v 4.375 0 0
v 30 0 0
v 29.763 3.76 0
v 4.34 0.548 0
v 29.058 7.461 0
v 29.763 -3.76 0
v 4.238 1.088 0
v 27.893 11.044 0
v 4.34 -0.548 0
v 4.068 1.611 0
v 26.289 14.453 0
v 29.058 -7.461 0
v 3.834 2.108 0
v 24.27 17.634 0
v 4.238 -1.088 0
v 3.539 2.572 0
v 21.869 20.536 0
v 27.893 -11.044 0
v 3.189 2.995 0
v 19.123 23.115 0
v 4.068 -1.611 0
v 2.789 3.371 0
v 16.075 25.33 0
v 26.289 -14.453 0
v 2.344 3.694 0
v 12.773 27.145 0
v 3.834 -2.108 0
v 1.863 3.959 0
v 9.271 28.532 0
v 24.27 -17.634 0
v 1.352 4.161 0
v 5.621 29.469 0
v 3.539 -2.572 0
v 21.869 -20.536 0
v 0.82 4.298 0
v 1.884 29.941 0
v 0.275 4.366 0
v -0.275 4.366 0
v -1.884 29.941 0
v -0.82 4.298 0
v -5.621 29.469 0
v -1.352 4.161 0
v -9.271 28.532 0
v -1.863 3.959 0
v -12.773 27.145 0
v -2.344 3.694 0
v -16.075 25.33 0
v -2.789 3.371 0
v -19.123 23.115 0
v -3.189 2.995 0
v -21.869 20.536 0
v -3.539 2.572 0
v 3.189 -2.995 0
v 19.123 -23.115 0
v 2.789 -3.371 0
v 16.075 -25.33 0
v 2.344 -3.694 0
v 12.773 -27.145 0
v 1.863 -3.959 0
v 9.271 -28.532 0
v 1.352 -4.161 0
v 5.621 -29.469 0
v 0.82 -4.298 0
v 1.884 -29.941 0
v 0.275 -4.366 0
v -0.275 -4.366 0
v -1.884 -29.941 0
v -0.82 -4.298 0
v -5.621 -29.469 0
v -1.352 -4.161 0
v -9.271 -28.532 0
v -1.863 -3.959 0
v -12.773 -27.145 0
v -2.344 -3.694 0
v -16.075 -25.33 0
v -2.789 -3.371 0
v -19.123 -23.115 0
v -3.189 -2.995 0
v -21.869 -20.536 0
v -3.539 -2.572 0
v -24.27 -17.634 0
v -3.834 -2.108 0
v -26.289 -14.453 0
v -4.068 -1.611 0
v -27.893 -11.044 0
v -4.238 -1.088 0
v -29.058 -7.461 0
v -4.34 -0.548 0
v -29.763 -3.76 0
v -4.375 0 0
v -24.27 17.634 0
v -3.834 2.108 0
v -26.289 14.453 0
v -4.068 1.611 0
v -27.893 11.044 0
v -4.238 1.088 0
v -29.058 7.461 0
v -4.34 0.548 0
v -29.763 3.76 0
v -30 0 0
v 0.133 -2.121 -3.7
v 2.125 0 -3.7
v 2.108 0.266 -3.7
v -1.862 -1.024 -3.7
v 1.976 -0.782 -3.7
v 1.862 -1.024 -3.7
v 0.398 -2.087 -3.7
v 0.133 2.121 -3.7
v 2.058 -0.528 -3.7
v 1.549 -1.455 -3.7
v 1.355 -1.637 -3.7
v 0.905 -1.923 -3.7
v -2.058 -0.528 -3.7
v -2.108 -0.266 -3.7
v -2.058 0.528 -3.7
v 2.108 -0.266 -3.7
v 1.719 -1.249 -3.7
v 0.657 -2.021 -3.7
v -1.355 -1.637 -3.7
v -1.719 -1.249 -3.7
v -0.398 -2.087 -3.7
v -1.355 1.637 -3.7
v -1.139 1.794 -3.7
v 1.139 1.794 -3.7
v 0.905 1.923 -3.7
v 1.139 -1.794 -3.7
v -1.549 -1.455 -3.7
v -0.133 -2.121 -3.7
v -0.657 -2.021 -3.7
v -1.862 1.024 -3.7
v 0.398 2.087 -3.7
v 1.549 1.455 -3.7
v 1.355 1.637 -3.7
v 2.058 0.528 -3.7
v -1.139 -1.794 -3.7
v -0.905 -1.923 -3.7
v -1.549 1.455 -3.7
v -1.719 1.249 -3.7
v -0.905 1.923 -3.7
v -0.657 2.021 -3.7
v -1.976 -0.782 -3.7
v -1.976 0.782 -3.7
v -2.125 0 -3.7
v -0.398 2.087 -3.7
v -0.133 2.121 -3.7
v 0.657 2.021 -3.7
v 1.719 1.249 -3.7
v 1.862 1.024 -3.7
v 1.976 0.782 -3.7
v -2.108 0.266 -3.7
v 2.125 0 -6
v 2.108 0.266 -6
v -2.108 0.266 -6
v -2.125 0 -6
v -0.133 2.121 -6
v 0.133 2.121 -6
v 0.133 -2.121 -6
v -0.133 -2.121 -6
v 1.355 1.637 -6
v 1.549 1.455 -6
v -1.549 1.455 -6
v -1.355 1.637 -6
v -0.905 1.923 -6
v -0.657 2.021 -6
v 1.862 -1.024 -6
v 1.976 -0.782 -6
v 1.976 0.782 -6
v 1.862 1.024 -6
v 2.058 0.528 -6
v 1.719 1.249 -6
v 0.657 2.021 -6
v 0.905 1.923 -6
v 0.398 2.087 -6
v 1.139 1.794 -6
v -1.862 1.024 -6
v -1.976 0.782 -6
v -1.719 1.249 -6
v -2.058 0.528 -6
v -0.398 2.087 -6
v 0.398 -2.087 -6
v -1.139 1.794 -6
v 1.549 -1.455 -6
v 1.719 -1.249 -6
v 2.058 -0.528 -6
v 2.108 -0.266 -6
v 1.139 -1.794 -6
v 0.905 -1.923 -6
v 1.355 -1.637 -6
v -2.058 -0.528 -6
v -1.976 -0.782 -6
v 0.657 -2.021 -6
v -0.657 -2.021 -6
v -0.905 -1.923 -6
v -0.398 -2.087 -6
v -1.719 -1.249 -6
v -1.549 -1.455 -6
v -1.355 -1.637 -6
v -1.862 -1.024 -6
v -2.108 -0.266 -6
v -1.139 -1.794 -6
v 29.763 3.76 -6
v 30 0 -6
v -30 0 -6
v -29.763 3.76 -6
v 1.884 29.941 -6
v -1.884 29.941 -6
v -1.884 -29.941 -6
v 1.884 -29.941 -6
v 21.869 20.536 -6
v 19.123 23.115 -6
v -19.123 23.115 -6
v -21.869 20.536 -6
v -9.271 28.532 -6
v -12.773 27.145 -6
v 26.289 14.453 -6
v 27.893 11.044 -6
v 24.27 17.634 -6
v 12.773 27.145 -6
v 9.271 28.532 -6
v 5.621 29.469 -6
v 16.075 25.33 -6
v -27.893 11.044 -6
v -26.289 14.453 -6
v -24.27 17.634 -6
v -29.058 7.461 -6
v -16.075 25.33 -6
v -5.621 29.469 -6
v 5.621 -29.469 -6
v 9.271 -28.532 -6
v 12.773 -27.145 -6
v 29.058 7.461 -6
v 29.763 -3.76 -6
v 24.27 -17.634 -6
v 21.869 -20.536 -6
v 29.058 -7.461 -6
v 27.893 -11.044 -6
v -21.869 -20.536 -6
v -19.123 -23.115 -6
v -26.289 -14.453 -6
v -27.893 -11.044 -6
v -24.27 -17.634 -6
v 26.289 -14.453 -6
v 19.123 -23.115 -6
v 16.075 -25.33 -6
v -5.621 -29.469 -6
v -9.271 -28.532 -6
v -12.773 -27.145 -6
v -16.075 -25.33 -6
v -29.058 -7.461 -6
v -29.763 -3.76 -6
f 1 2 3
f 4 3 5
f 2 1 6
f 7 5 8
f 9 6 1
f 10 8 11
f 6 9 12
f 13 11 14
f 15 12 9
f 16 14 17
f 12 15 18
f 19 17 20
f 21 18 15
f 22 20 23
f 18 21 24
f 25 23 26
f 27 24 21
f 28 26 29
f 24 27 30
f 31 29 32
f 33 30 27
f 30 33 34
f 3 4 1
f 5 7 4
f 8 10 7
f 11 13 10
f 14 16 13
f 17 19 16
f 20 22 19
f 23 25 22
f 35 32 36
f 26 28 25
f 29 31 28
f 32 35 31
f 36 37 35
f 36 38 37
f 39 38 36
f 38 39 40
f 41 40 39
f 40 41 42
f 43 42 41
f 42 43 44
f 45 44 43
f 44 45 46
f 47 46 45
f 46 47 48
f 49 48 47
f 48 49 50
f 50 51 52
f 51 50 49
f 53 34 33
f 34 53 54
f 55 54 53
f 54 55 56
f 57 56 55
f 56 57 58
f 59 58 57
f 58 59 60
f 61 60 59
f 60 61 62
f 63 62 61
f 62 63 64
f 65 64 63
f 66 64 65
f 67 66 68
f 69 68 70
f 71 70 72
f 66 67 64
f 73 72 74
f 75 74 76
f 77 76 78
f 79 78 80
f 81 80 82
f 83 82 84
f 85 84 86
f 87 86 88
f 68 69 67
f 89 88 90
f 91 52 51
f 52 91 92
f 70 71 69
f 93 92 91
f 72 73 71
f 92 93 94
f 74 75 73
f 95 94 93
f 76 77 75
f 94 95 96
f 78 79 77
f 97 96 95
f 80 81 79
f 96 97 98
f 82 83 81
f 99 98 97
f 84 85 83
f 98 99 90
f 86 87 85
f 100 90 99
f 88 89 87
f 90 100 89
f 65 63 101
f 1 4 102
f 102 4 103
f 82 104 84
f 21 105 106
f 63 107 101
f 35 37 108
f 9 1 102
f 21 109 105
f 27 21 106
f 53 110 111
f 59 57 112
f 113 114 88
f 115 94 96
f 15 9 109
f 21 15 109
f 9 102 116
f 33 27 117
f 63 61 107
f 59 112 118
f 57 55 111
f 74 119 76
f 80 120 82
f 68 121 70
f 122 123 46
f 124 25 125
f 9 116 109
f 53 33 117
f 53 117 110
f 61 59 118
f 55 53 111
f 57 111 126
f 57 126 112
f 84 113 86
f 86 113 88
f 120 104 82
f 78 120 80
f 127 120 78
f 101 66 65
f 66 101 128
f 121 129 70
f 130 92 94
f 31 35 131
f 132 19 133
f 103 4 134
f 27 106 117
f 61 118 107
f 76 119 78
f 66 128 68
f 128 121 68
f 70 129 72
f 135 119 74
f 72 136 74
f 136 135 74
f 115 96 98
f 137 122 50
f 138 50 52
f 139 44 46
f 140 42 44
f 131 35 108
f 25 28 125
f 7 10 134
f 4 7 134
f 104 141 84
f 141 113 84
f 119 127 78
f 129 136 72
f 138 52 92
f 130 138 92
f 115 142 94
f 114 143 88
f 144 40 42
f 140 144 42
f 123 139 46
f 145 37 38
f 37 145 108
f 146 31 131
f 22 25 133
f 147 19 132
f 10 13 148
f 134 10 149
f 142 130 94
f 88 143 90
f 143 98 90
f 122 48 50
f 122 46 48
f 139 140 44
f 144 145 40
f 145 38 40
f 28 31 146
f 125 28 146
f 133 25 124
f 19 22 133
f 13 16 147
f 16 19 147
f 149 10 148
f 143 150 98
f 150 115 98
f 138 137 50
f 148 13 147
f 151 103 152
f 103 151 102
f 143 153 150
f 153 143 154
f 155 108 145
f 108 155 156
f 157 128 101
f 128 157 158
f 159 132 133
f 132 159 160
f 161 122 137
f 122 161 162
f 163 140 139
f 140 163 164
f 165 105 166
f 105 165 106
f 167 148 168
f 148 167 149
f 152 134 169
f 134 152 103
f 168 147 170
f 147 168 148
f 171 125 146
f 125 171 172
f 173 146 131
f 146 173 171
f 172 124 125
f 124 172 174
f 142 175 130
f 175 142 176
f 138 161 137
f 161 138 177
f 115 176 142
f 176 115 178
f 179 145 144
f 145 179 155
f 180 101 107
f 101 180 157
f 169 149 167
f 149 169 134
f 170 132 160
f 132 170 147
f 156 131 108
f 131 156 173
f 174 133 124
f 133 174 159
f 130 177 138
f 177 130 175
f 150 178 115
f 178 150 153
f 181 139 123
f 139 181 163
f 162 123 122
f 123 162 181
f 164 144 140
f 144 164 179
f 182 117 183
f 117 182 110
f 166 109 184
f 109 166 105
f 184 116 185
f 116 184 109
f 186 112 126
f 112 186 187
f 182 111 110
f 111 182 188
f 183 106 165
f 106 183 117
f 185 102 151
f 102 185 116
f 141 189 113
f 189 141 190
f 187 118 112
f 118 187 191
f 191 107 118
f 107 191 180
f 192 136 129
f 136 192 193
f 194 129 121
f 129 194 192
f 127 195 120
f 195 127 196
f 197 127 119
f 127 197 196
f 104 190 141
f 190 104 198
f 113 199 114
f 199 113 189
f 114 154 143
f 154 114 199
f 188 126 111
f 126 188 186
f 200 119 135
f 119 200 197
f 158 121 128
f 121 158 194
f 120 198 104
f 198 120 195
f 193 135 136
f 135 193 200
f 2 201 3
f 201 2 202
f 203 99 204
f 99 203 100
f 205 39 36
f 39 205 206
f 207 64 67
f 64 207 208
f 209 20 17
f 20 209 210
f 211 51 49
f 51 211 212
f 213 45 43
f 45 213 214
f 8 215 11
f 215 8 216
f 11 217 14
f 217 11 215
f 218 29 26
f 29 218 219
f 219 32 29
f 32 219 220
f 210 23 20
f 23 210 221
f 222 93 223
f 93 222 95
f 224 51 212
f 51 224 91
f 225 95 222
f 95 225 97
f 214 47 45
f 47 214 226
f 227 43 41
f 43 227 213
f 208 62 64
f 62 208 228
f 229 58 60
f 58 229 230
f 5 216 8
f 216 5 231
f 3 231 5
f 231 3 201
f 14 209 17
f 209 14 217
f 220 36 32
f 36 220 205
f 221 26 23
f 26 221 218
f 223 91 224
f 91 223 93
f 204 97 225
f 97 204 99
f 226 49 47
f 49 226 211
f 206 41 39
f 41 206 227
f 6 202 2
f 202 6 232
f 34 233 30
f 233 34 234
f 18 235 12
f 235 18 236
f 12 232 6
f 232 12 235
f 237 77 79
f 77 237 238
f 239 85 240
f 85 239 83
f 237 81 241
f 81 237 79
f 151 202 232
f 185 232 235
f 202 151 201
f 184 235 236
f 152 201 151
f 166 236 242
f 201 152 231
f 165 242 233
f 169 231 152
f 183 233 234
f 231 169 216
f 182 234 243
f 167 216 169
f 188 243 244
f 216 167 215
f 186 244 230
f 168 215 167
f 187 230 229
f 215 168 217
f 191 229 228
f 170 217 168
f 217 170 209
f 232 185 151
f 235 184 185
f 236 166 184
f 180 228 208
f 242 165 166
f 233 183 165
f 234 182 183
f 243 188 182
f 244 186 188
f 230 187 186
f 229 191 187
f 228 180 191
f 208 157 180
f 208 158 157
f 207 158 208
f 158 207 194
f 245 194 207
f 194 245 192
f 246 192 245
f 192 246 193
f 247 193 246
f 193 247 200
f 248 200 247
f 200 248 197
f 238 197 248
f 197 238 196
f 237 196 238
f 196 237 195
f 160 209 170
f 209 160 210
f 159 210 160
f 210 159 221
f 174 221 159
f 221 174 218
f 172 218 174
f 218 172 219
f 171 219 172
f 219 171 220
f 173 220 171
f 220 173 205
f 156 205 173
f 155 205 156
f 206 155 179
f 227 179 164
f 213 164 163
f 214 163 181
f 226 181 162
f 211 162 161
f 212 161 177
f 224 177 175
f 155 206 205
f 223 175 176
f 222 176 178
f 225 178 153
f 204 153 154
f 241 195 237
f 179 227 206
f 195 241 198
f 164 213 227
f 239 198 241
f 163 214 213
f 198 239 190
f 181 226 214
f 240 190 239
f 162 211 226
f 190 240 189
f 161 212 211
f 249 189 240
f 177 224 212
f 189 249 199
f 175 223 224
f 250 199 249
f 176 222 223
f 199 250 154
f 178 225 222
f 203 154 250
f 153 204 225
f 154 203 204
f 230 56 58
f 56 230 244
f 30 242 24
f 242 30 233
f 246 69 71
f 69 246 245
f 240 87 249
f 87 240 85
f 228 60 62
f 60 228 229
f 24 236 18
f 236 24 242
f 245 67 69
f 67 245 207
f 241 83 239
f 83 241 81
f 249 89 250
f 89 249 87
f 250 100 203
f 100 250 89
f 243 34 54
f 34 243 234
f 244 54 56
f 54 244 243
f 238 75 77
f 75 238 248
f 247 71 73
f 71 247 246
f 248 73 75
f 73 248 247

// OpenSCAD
$fn = 50;


difference() {
	union() {
		translate(v = [0, 0, -6.0000000000]) {
			cylinder(h = 6, r = 30.0000000000);
		}
	}
	union() {
		translate(v = [0, 0, 0]) {
			rotate(a = [0, 0, 0]) {
				difference() {
					union() {
						translate(v = [0, 0, -9.0000000000]) {
							cylinder(h = 9, r = 2.0000000000);
						}
						translate(v = [0, 0, -3.7000000000]) {
							cylinder(h = 3.7000000000, r1 = 2.1250000000, r2 = 4.3750000000);
						}
						translate(v = [0, 0, -9.0000000000]) {
							cylinder(h = 9, r = 2.1250000000);
						}
						translate(v = [0, 0, -9.0000000000]) {
							cylinder(h = 9, r = 2.0000000000);
						}
					}
					union();
				}
			}
		}
	}
}
